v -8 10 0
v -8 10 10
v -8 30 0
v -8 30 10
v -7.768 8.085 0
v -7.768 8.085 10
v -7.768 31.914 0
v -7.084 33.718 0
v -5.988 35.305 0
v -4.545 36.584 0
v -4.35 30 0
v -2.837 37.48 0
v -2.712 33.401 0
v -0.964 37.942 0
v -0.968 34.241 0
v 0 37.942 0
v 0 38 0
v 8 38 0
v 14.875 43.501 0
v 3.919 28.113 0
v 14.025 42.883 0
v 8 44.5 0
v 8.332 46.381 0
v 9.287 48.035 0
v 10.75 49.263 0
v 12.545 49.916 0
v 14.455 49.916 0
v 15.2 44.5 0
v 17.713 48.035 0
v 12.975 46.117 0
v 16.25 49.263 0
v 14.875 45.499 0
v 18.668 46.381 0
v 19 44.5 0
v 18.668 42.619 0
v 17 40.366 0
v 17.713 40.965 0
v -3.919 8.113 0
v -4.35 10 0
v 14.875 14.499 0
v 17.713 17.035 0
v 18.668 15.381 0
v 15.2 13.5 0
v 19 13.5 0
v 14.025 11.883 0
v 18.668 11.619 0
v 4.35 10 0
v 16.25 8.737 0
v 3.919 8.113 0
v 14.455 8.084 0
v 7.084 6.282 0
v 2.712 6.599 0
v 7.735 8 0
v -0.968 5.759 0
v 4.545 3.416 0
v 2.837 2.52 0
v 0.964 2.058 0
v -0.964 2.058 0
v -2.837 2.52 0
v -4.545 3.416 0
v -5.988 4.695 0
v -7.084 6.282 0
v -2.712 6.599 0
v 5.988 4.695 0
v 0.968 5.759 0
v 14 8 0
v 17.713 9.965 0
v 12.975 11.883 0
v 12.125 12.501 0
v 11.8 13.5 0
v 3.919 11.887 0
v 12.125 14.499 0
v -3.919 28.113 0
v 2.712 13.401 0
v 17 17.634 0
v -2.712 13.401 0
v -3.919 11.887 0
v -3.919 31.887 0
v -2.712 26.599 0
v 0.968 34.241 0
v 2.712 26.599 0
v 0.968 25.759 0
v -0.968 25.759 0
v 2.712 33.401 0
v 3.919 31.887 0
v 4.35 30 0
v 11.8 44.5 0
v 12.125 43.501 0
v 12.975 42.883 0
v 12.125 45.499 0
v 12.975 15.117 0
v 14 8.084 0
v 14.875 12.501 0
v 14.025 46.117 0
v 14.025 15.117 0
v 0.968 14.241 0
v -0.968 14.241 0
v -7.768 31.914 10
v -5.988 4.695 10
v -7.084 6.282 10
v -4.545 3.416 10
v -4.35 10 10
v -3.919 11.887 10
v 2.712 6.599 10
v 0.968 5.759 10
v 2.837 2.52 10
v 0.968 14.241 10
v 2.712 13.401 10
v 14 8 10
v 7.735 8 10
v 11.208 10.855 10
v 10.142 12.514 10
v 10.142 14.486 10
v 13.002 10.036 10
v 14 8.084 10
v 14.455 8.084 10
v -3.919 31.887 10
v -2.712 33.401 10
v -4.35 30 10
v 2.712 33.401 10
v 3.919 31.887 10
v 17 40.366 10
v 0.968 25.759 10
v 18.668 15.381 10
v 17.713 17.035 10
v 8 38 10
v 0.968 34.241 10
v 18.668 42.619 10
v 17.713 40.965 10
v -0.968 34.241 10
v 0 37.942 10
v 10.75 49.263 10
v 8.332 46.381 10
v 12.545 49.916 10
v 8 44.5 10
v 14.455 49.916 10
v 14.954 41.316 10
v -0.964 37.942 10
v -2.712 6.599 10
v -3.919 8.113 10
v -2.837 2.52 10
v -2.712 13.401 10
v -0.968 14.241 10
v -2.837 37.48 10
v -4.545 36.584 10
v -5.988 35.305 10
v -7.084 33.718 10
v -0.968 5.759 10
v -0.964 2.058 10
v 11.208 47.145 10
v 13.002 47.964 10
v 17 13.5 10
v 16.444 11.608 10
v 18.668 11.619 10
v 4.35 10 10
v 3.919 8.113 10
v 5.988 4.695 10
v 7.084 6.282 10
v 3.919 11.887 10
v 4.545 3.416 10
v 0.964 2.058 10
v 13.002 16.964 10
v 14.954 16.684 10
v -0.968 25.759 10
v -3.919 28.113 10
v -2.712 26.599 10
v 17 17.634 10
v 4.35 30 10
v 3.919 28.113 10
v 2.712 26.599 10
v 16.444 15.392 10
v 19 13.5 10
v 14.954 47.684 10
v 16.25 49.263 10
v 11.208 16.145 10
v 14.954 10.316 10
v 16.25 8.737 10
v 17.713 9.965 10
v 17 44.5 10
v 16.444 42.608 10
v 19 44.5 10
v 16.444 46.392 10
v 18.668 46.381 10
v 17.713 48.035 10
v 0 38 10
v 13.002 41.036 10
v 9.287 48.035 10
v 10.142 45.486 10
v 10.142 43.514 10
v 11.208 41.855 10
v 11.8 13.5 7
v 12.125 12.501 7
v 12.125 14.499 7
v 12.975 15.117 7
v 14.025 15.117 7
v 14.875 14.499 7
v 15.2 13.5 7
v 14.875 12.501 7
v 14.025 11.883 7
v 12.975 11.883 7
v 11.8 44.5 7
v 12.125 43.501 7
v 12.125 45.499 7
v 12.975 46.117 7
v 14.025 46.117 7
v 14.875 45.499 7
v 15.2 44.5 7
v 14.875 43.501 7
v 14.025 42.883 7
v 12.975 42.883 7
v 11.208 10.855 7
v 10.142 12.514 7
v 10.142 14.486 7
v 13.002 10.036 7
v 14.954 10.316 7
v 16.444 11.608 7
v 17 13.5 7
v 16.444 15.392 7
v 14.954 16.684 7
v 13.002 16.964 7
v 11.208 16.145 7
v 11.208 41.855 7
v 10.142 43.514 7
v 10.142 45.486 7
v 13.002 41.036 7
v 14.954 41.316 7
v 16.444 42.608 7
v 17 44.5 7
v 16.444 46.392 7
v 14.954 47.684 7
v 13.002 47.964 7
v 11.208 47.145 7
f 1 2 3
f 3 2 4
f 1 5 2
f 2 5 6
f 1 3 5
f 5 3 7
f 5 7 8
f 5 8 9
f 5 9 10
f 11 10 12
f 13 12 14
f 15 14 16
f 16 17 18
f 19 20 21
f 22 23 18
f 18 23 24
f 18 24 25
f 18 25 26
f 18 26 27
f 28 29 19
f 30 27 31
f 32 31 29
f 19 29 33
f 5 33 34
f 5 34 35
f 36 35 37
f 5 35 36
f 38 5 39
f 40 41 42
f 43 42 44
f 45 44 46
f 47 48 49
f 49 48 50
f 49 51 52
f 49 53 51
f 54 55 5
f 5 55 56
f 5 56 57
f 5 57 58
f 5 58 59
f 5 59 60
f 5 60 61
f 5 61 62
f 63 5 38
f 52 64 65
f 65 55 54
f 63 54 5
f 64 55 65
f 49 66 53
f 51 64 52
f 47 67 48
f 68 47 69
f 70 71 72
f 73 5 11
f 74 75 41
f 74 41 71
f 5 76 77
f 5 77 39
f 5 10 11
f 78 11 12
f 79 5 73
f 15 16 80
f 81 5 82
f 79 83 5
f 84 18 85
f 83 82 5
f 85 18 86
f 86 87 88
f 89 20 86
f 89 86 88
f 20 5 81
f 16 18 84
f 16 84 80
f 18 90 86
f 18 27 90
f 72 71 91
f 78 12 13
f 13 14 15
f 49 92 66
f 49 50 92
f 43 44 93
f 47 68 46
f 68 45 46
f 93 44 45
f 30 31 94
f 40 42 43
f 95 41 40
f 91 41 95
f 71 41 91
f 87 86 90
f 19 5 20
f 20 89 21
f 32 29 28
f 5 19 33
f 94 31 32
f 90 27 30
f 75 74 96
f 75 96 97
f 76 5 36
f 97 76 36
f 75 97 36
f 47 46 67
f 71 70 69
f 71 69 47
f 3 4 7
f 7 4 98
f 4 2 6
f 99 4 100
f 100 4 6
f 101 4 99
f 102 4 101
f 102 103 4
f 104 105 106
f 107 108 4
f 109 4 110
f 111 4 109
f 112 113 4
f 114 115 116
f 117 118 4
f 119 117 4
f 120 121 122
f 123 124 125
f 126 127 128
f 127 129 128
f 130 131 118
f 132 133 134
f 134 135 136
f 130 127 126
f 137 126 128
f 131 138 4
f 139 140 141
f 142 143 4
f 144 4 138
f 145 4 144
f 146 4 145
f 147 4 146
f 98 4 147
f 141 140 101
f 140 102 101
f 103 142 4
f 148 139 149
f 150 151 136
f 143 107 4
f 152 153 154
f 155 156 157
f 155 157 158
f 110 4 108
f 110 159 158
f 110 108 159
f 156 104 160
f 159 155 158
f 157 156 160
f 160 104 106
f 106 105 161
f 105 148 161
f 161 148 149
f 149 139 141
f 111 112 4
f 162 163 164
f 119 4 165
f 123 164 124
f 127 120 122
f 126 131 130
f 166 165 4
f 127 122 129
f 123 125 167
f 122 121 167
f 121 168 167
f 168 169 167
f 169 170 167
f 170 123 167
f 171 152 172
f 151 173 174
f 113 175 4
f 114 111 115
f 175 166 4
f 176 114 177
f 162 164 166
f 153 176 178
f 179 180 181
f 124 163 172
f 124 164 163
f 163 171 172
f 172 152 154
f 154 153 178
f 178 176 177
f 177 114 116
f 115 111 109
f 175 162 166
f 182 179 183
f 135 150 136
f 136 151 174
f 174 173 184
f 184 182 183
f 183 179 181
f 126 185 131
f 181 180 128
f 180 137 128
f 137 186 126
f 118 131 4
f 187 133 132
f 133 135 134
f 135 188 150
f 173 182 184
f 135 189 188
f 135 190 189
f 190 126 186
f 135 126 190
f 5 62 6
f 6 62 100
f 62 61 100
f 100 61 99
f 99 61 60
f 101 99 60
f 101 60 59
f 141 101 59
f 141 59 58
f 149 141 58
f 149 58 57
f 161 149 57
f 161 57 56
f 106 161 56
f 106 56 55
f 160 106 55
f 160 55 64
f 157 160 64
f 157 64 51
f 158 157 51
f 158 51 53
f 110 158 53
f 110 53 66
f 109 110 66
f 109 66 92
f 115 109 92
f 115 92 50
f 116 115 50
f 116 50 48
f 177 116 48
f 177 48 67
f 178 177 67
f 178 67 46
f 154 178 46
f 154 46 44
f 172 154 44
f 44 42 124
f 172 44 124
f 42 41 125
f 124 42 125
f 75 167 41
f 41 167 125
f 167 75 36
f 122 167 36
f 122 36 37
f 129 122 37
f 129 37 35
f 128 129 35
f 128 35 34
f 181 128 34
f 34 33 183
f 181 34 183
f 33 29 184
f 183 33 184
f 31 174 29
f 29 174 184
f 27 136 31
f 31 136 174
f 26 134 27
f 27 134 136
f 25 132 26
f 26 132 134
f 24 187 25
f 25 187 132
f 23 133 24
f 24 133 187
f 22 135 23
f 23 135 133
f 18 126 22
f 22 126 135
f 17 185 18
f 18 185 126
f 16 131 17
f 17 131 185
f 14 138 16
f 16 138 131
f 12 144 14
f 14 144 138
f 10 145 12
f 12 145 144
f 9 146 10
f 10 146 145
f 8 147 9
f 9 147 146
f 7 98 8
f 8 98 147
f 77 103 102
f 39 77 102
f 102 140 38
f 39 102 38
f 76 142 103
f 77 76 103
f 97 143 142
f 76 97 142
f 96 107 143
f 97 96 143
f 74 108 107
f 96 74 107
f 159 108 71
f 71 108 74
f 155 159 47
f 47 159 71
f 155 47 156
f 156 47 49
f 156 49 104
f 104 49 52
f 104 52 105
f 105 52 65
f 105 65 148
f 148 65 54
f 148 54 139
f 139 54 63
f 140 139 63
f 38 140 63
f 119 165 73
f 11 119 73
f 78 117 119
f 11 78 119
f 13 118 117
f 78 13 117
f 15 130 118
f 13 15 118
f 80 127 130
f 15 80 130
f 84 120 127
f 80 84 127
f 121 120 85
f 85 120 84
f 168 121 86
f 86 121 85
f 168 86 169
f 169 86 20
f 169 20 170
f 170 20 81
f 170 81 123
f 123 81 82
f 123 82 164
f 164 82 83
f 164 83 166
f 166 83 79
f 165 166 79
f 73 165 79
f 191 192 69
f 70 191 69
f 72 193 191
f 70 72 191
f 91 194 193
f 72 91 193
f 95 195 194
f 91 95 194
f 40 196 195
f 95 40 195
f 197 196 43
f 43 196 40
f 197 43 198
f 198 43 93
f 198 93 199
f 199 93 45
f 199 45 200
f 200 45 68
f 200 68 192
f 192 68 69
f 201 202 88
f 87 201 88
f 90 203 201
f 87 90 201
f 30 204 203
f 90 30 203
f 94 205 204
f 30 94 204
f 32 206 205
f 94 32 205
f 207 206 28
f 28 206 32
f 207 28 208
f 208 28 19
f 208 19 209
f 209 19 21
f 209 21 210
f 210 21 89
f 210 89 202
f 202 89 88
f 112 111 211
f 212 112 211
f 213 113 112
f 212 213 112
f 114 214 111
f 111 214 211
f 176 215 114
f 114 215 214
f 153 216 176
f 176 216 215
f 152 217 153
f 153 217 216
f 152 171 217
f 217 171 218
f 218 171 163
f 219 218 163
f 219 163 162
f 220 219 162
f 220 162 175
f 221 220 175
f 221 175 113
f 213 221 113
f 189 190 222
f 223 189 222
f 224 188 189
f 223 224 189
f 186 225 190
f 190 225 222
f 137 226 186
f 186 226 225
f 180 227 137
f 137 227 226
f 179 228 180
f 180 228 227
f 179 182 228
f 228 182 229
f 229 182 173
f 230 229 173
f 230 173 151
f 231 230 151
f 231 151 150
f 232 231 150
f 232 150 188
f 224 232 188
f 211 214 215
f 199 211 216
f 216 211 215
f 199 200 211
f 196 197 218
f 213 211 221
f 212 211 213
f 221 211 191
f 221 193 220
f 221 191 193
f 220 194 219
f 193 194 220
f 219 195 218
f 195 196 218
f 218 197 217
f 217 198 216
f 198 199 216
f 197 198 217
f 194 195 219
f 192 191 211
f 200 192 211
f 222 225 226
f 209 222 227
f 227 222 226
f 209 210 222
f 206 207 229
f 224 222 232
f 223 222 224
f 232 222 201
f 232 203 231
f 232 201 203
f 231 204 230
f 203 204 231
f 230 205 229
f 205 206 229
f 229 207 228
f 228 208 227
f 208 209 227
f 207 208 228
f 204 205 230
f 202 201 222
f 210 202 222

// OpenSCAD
// file: inc/inc/functions.scad
// PRUSA iteration3
// Functions used in many files
// GNU GPL v3
// Josef Průša <josefprusa@me.com>
// Václav 'ax' Hůla <axtheb@gmail.com>
// Vlnofka <>
// http://www.reprap.org/wiki/Prusa_Mendel
// http://github.com/prusajr/PrusaMendel

module roundcorner(diameter){
	difference(){
		cube(size = [diameter,diameter,99], center = false);
		translate(v = [diameter, diameter, 0]) cylinder(h = 100, r=diameter, center=true);
	}
}
module nut(d,h,horizontal=true){
    cornerdiameter =  (d / 2) / cos (180 / 6);
    cylinder(h = h, r = cornerdiameter, $fn = 6);
    if(horizontal){
        for(i = [1:6]){
            rotate([0,0,60*i]) translate([-cornerdiameter-0.2,0,0]) rotate([0,0,-45]) cube([2,2,h]);
        }
    }
}

// Based on nophead research
module polyhole(d, h, center=false) {
    n = max(round(2 * d),3);
    rotate([0,0,180])
        cylinder(h = h, r = (d / 2) / cos (180 / n), $fn = n);
}

// make it interchangeable between this and cylinder
module cylinder_poly(r, h, center=false){
    polyhole(d=r*2, h=h, center=center);
}

module fillet(radius, height=100, $fn=0) {
    //this creates acutal fillet
    translate([-radius, -radius, -height/2-0.01])
        difference() {
            cube([radius*2, radius*2, height+0.02]);
            cylinder(r=radius, h=height+0.02, $fn=$fn);
        }
}

module cube_fillet(size, radius=-1, vertical=[3,3,3,3], top=[0,0,0,0], bottom=[0,0,0,0], center=false, $fn=0){
    //
    if (center) {
        cube_fillet_inside(size, radius, vertical, top, bottom, $fn);
    } else {
        translate([size[0]/2, size[1]/2, size[2]/2])
            cube_fillet_inside(size, radius, vertical, top, bottom, $fn);
    }
}

module cube_negative_fillet(size, radius=-1, vertical=[3,3,3,3], top=[0,0,0,0], bottom=[0,0,0,0], $fn=0){

    j=[1,0,1,0];

    for (i=[0:3]) {
        if (radius > -1) {
            rotate([0, 0, 90*i]) translate([size[1-j[i]]/2, size[j[i]]/2, 0]) fillet(radius, size[2], $fn=$fn);
        } else {
            rotate([0, 0, 90*i]) translate([size[1-j[i]]/2, size[j[i]]/2, 0]) fillet(vertical[i], size[2], $fn=$fn);
        }
        rotate([90*i, -90, 0]) translate([size[2]/2, size[j[i]]/2, 0 ]) fillet(top[i], size[1-j[i]], $fn=$fn);
        rotate([90*(4-i), 90, 0]) translate([size[2]/2, size[j[i]]/2, 0]) fillet(bottom[i], size[1-j[i]], $fn=$fn);

    }
}

module cube_fillet_inside(size, radius=-1, vertical=[3,3,3,3], top=[0,0,0,0], bottom=[0,0,0,0], $fn=0){
    //makes CENTERED cube with round corners
    // if you give it radius, it will fillet vertical corners.
    //othervise use vertical, top, bottom arrays
    //when viewed from top, it starts in upper right corner (+x,+y quadrant) , goes counterclockwise
    //top/bottom fillet starts in direction of Y axis and goes CCW too


    if (radius == 0) {
        cube(size, center=true);
    } else {
        difference() {
            cube(size, center=true);
            cube_negative_fillet(size, radius, vertical, top, bottom, $fn);
        }
    }
}


module nema17(places=[1,1,1,1], size=15.5, h=10, holes=false, shadow=false, $fn=24){
    for (i=[0:3]) {
        if (places[i] == 1) {
            rotate([0, 0, 90*i]) translate([size, size, 0]) {
                if (holes) {
                    #rotate([0, 0, -90*i])  translate([0,0,-10]) screw(r=1.7, slant=false, head_drop=13, $fn=$fn, h=h+12);
                } else {
                    rotate([0, 0, -90*i]) cylinder(h=h, r=5.5, $fn=$fn);
                }
            }
        }
    }
    if (shadow != false) {
        %translate ([0, 0, shadow+21+3]) cube([42,42,42], center = true);
    //flange
        %translate ([0, 0, shadow+21+3-21-1]) cylinder(r=11,h=2, center = true, $fn=20);
    //shaft
        %translate ([0, 0, shadow+21+3-21-7]) cylinder(r=2.5,h=14, center = true);
    }
}

module screw(h=20, r=2, r_head=3.5, head_drop=0, slant=true, poly=false, $fn=0){
    //makes screw with head
    //for substraction as screw hole
    if (poly) {
        cylinder_poly(h=h, r=r, $fn=$fn);
    } else {
        cylinder(h=h, r=r, $fn=$fn);
    }
    if (slant) {
        translate([0, 0, head_drop-0.01]) cylinder(h=r_head, r2=0, r1=r_head, $fn=$fn);
    }

    if (head_drop > 0) {
        translate([0, 0, -0.01]) cylinder(h=head_drop+0.01, r=r_head, $fn=$fn);
    }
}
module screw_cylinder(r_head=5.25,r=3.25,head_drop=6.2,slant=false){
	screw(r_head=r_head,head_drop=head_drop,r=r, slant=slant);

}

//screw_cylinder();
//cube_fillet([10,20,30], vertical=[3,2,0,0], top=[3,2,0,5], bottom=[3,2,0,5]);
//cube_fillet([10,20,30], radius=2, top=[7,2,7,2]);
// file: inc/conf_bushing.scad
// PRUSA iteration3
// Bushing and bering dimensions
// GNU GPL v3
// Václav 'ax' Hůla <axtheb@gmail.com>
// http://www.reprap.org/wiki/Prusa_Mendel
// http://github.com/josefprusa/Prusa3
//

// each config is in form[r_rod, r, h, type, name] where:
//     r_rod  is smooth rod radius [0]
//     r is outer bushing radius needed for tight fit or bearing radius with loose fit [1]
//     h is barrel length [2]
//     type is 0 for linear bearings, 1 is for bushings which needs to be enclosed fully. [3]
//       type 1 may have flange, but type 0 not
//     name is human readable name [4]

//bushings
conf_b_bushing8 = [4, 5.1, 10, 1, "Tube shaped bushing like igus J(V)FM 0810-10"];
conf_b_bushing10 = [5, 6.1, 10, 1, "Tube shaped bushing with id=10mm, od=12mm and length of at least 10mm, like J(V)FM 1012-10"];
conf_b_bushing12 = [6, 7.1, 15, 1, "Tube shaped bushing with id=12mm, od=14mm and length of at least 15mm, like SF-1 1215"];

conf_b_bronze8 = [4, 8, 11, 1, "bronze self-aligning bushing, 8mm"];

//shorter beaings (two on each Z axis)
conf_b_lm8uu = [4, 7.7, 24, 0, "lm8uu bearing (standard)"];
conf_b_lm10uu = [5, 9.7, 29, 0, "lm10uu bearing (10mm smooth rod)"];
conf_b_lme8uu =[4, 8.2, 25, 0, "lme8uu bearing"];
conf_b_lm12uu = [6, 10.6, 30, 0, "lm12uu bearing (12mm smooth rod)"];

//longer bearings
conf_b_lm8luu = [4, 7.7, 45, 0, "lm8luu bearing (double length)"];
conf_b_lm10luu = [5, 9.7, 55, 0, "lm10luu bearing (10mm smooth rod, long)"];
conf_b_lm12luu = [6, 10.6, 57, 0, "lm12luu bearing (12mm, double length)"];


// Select idler bearing size **************************************************
// [outer_diameter, width, inner_diameter, uses_guide]

// roughly sorted by desirability

// one bearing with guides
// Select by availability, smaller is better.
bearing_623 = [10, 4, 3, 1, "623 bearing"];
bearing_624 = [13, 5, 4, 1, "624 bearing"];
bearing_625 = [16, 5, 5, 1, "625 bearing"];

// two bearings side by side - for use without bearing guides.
// Not recomended anymore
bearing_625_double = [16, 10, 5, 0, "625 bearing x2"];
bearing_624_double = [13, 10, 4, 0, "624 bearing x2"];
bearing_623_double = [10, 8, 3, 0, "623 bearing"];

// 608 [standard skate bearings] with bearing guide
bearing_608 = [22, 7, 8, 1, "608 bearing"];
// 608 bearings with fender washers.
// the belt brushes both against the carriage and the washers.
bearing_608_washers = [22, 10, 8, 0, "608 bearing"];



// Select Z axis threaded rod size **************************************************
// [threaded_rod_diametar, threaded_rod_hole_r, nut_diameter, rod_trap_translate, rod_trap_cube_fillet ]

z_axis_threaded_rod_type_m5 = [5, 3, 4.6, [-12, 11, 0], [20, 14, 10]];
z_axis_threaded_rod_type_m8 = [8, 4.5, (14.38+0.5)/2, [-11, 9.3, 0], [20, 16, 10]];
// file: inc/metric.scad
// PRUSA iteration3
// Default metric sizes
// GNU GPL v3
// Josef Průša <josefprusa@me.com>
// http://www.reprap.org/wiki/Prusa_Mendel
// http://github.com/prusajr/PrusaMendel

// DONT CHANGE THIS FILE! ALTER VALUES IN CONFIGURATION.SCAD INSTEAD

// RODS

threaded_rod_diameter = 8.7;
threaded_rod_diameter_horizontal = 9;
smooth_bar_diameter = 8;
smooth_bar_diameter_horizontal = 8.5;
smooth_big_bar_diameter_horizontal = 10.8;

// Nuts and bolts


m8_diameter = 9;
//iso4032 says Width across corners = 14.38
m8_nut_diameter = 14.1;

m4_diameter = 4.7;
//iso4032 says 7.66
m4_nut_diameter = 7.6;
m4_nut_diameter_horizontal = 8.15;

m3_diameter = 3.4;
//iso4032 says 6.01
m3_nut_diameter = 5.3;
m3_nut_diameter_horizontal = 6.8;
m3_washer_diameter = 6.9;

// Motors

motor_shaft = 5.5;
// file: inc/configuration.scad
// PRUSA iteration3
// Configuration file
// GNU GPL v3
// Josef Průša <josefprusa@me.com>
// Václav 'ax' Hůla <axtheb@gmail.com>
// http://www.reprap.org/wiki/Prusa_Mendel
// http://github.com/prusajr/PrusaMendel

include <metric.scad>;
include <conf_bushing.scad>;

// Custom settings here, tailor to your supplies and print settings

layer_height = 0.3;
width_over_thickness = 2.2;

// Select your belt type ******************************************************

//T2.5
belt_tooth_distance = 2.5;
belt_tooth_ratio = 0.75;

//T5 (strongly discouraged)
//belt_tooth_distance = 5;
//belt_tooth_ratio = 0.75;

//HTD3
//belt_tooth_distance = 3;
//belt_tooth_ratio = 0.75;

//MXL
//belt_tooth_distance = 2.032;
//belt_tooth_ratio = 0.64;

//GT2 there is bunch of GT2 belts with different tooth-to-tooth distance
//adjust to your needs
//belt_tooth_distance = 2;
//belt_tooth_ratio = 0.5;

// For T type belts you will probably want 0.8mm or so.
belt_thickness = 1.75;

// Choose bearing/bushing configuration ***************************************
// conf_b_* are in inc/conf_bushing.scad

bushing_xy = conf_b_lm8uu;
bushing_z = conf_b_lm8uu;
// for longer bearings use one shorter in x-carriage to make place for belt attachment
// by default use same as xy
bushing_carriage = bushing_xy;

// Select idler bearing size **************************************************
// [outer_diameter, width, inner_diameter, uses_guide]
// 608 [standard skate bearings] with bearing guide
bearing_608 = [22, 7, 8, 1];
//608 bearings with fender washers. Not good at all, the belt brushes against the carriage
bearing_608_washers = [22, 10, 8, 0];
// one 625 with guides
bearing_625 = [16, 5, 5, 1];
// two 625 - for use without bearing guides.
bearing_625_double = [16, 10, 5, 0];

// those two here are really good:
bearing_624_double = [13, 9, 4, 0];
// this one has roughly same diameter as pulley, makes belt parallel so its prettier
bearing_623_double = [10, 8, 3, 0];

idler_bearing = bearing_608;

//Select carriage lenght
// 30 for single carriage extruder (two holes with centers 30mm apart)
// 50 for wade or single with fan (three holes, 30-20)
// 80 for full length carriage (four holes, 30-20-30)

carriage_l_base = 50;

// Fillets ********************************************************************
// mostly cosmetic, except z axis.
// 0 = no fillets
// 1 = fillet

use_fillets = 1;

//set to 0 for single plate (affects z axis and screws that attach RP parts tp frame)
i_am_box = 0;

//if you do your own plate and can move bottom Z screws 5mm up set this to 0 to
//get stronger motor mount. Only for i_am_box = 0
i_want_to_use_single_plate_dxf_and_make_my_z_weaker = 1;

//radius of long threaded rod on Y frame
//Use 5.4 for M10 or 4.4 for M8
y_threaded_rod_long_r = 4.4;

// Thickness of the XZ plate board. Leave at 12 for single plate
board_thickness = 12;

// END of custom settings


// You are not supposed to change this
board_to_xz_distance = 26;
xaxis_rod_distance = 45;

//calculated from settings
single_wall_width = width_over_thickness * layer_height;

idler_width = (idler_bearing[1] > 7 ? idler_bearing[1] : 7) + 2.5 * idler_bearing[3] ;

//deltas are used to enlarge parts for bigger bearings 
xy_delta = ((bushing_xy[1] <= 7.7) ? 0 : bushing_xy[1] - 7.7) * 0.9;
z_delta = (bushing_z[1] <= 7.7) ? 0 : bushing_z[1] - 7.7;

// CHANGE ONLY THE STUFF YOU KNOW
// IT WILL REPLACE DEFAULT SETTING

// RODS

// threaded_rod_diameter = 0;
// threaded_rod_diameter_horizontal = 0;
// smooth_bar_diameter = 0;
// smooth_bar_diameter_horizontal = 0;

// Nuts and bolts

// m8_diameter = 0;
// m8_nut_diameter = 0;

// m4_diameter = 0;
// m4_nut_diameter = 0;

// m3_diameter = 0;
// m3_nut_diameter = 0;

// Bushing holder

// bushing_core_diameter = smooth_bar_diameter;
// bushing_material_thickness = 0;

///counted stuff
m3_nut_diameter_bigger = ((m3_nut_diameter  / 2) / cos (180 / 6))*2;

// functions
include <inc/functions.scad>

// These constants define the geometry of the complete-printer.scad

//x_smooth_rod_length=325;
//y_smooth_rod_length=405;
//z_smooth_rod_length=235;
bed_x_size=225;
bed_y_size=225;

x_smooth_rod_length=460+board_thickness*2; // 492 for 16mm thickness; 484 for 12mm thickness
y_smooth_rod_length=470;
z_smooth_rod_length=405;
// main file
// PRUSA iteration3
// Y motor mount
// GNU GPL v3
// Josef Průša <iam@josefprusa.cz> and contributors
// http://www.reprap.org/wiki/Prusa_Mendel
// http://prusamendel.org

include <inc/configuration.scad>

module y_motor_base(){
 // Motor holding part
 translate(v = [29,-21+50,0]){
  translate(v = [-21+4.5,0,5]) cube(size = [9,31,10], center=true);
  translate(v = [-15.5,-15.5,0]) cylinder(h = 10, r=5.5);
  translate(v = [-15.5,+15.5,0]) cylinder(h = 10, r=5.5);
  // Joins motor holder and rod plate
  translate(v = [-29,-21,0]) cube(size = [14,30,10]);
 }
 // Front holding part
 translate(v = [0,10,0]) cylinder(h = 10, r=8);
 translate(v = [0,20,5])cube(size = [16,20,10], center=true);	
 translate(v = [0,30,0])cylinder(h = 10, r=8);
}

module y_motor_holes(){
 translate(v = [29,-21+50,0]){
  // Screw head holes
  translate(v = [-15.5,-15.5,-1]) cylinder(h = 10, r=m3_diameter/2, $fn=10);
  translate(v = [-15.5,+15.5,-1]) cylinder(h = 10, r=m3_diameter/2, $fn=10);
  // Screw holes
  translate(v = [-15.5,-15.5,7]) cylinder(h = 7, r=3.5);
  translate(v = [-15.5,+15.5,7]) cylinder(h = 7, r=3.5);
 }
 translate(v = [0,10,-1]) cylinder(h = 12, r=threaded_rod_diameter/2);	
 translate(v = [0,30,-1]) cylinder(h = 12, r=threaded_rod_diameter/2);
}

// Final part
module y_motor(){
 difference(){
  y_motor_base();
  y_motor_holes();
 }
}

y_motor();
